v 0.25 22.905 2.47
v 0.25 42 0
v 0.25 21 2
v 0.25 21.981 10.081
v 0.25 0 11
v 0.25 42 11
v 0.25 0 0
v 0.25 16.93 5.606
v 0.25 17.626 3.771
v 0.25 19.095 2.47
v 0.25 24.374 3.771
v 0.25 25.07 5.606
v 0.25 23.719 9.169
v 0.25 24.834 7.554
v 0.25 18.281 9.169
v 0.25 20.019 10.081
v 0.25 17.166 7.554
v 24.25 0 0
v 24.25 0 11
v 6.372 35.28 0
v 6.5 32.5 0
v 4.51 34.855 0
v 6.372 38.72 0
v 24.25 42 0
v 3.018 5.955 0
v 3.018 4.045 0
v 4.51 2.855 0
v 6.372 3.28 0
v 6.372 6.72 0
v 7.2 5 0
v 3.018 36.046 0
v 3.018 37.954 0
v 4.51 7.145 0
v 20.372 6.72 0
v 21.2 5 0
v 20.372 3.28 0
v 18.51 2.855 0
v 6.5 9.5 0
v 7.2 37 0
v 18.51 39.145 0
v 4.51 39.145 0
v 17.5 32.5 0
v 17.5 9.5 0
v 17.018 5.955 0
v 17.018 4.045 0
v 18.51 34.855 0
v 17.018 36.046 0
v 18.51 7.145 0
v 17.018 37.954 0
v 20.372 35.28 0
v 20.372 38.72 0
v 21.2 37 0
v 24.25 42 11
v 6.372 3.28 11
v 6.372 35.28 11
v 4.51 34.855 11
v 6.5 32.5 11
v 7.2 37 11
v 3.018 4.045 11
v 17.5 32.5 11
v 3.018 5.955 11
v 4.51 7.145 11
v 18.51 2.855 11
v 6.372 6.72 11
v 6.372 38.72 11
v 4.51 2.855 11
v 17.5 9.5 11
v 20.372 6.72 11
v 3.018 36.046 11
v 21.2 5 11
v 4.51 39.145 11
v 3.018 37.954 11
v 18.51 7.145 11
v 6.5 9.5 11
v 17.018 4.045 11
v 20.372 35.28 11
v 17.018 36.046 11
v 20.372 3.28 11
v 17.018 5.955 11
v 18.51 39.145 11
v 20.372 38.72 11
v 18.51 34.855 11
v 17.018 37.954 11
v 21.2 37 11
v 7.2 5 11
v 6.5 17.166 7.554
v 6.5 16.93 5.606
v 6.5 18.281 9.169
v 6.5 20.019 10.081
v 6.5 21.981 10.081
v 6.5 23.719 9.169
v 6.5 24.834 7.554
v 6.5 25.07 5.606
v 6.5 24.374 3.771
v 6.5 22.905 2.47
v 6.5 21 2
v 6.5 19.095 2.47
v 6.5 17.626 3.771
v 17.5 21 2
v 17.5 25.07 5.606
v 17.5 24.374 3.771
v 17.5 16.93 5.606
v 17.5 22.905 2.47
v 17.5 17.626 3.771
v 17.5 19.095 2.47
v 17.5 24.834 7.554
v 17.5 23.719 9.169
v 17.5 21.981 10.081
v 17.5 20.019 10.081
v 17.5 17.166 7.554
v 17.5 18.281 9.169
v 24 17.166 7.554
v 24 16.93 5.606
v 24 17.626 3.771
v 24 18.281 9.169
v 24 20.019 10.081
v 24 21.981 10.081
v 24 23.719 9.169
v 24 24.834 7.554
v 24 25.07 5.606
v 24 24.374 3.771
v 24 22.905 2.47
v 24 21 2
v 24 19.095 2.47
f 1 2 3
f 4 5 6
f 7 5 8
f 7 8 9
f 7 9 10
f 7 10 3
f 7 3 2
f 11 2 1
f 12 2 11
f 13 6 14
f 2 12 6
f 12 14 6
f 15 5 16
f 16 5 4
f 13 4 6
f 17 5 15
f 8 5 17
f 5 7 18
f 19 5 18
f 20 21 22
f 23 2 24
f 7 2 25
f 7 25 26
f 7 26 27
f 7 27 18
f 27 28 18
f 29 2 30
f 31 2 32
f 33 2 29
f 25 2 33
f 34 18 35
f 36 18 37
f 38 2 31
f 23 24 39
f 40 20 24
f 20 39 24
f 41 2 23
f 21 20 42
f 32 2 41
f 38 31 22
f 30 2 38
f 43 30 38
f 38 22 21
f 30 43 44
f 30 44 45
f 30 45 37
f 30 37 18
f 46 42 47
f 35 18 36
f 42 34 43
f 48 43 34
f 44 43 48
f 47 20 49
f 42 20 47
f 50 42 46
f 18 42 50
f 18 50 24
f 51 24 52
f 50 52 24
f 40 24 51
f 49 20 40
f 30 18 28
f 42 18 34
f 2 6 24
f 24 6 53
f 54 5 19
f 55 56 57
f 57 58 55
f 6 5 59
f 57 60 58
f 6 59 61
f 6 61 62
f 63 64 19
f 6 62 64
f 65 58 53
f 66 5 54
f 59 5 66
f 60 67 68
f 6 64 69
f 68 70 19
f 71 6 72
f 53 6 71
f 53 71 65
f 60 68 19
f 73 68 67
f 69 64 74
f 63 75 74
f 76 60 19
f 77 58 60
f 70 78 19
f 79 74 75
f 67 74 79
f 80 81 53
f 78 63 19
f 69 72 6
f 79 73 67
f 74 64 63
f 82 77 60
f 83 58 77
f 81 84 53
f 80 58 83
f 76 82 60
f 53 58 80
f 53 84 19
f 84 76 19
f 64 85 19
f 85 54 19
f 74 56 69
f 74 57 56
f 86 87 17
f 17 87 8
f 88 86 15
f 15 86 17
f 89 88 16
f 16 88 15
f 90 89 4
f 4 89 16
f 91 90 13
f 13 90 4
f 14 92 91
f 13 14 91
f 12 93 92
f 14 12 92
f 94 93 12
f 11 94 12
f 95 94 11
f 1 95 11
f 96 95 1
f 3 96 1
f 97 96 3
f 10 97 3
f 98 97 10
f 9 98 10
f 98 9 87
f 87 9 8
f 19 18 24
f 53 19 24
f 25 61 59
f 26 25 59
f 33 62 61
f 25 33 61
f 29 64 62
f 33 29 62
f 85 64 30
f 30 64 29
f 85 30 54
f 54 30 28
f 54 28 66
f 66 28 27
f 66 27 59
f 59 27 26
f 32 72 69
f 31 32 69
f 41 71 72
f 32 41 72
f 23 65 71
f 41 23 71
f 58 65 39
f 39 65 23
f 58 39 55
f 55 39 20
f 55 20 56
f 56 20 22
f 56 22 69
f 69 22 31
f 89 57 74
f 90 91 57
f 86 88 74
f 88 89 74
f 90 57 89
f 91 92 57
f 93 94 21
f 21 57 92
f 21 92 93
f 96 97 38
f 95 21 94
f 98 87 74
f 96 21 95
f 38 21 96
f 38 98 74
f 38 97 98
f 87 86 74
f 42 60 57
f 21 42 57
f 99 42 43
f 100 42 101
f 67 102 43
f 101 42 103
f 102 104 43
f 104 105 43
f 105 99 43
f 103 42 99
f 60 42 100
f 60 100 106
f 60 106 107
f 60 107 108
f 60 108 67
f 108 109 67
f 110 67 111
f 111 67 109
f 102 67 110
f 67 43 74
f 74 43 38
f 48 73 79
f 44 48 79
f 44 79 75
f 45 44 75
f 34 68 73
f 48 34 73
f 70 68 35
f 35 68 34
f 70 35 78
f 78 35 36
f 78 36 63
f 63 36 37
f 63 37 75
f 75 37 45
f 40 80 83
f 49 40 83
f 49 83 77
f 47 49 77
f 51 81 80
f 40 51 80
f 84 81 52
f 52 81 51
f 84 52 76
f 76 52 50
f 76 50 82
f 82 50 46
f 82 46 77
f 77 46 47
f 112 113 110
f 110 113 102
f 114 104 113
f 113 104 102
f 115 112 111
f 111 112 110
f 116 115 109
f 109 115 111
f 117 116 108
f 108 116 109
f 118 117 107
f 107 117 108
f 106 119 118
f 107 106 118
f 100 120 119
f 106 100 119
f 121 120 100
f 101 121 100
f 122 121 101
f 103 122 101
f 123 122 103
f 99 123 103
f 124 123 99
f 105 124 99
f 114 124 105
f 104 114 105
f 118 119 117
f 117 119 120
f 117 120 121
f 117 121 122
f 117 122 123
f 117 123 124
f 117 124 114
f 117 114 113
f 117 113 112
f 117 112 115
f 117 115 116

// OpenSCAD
module extruder_idler_base(){
 translate([0.25,0,0]) cube([24,42,8+3]);
	
}

module extruder_idler_holes(){
 translate([12,21,0]){
  // Main cutout
  cube([11,23,25], center= true);
  // Idler shaft
  translate([-12,0,4.1+2])rotate([0,90,0])cylinder(r=4.1, h=24);
  // Screw holes
  translate([7,-16,-1])cylinder(r=2.2, h=24);
  translate([-7,-16,-1])cylinder(r=2.2, h=24);
  translate([7,16,-1])cylinder(r=2.2, h=24);
  translate([-7,16,-1])cylinder(r=2.2, h=24);
 }
}


// Idler final part
module idler(){
 difference(){
  extruder_idler_base();
  extruder_idler_holes();
 }
}

idler();
